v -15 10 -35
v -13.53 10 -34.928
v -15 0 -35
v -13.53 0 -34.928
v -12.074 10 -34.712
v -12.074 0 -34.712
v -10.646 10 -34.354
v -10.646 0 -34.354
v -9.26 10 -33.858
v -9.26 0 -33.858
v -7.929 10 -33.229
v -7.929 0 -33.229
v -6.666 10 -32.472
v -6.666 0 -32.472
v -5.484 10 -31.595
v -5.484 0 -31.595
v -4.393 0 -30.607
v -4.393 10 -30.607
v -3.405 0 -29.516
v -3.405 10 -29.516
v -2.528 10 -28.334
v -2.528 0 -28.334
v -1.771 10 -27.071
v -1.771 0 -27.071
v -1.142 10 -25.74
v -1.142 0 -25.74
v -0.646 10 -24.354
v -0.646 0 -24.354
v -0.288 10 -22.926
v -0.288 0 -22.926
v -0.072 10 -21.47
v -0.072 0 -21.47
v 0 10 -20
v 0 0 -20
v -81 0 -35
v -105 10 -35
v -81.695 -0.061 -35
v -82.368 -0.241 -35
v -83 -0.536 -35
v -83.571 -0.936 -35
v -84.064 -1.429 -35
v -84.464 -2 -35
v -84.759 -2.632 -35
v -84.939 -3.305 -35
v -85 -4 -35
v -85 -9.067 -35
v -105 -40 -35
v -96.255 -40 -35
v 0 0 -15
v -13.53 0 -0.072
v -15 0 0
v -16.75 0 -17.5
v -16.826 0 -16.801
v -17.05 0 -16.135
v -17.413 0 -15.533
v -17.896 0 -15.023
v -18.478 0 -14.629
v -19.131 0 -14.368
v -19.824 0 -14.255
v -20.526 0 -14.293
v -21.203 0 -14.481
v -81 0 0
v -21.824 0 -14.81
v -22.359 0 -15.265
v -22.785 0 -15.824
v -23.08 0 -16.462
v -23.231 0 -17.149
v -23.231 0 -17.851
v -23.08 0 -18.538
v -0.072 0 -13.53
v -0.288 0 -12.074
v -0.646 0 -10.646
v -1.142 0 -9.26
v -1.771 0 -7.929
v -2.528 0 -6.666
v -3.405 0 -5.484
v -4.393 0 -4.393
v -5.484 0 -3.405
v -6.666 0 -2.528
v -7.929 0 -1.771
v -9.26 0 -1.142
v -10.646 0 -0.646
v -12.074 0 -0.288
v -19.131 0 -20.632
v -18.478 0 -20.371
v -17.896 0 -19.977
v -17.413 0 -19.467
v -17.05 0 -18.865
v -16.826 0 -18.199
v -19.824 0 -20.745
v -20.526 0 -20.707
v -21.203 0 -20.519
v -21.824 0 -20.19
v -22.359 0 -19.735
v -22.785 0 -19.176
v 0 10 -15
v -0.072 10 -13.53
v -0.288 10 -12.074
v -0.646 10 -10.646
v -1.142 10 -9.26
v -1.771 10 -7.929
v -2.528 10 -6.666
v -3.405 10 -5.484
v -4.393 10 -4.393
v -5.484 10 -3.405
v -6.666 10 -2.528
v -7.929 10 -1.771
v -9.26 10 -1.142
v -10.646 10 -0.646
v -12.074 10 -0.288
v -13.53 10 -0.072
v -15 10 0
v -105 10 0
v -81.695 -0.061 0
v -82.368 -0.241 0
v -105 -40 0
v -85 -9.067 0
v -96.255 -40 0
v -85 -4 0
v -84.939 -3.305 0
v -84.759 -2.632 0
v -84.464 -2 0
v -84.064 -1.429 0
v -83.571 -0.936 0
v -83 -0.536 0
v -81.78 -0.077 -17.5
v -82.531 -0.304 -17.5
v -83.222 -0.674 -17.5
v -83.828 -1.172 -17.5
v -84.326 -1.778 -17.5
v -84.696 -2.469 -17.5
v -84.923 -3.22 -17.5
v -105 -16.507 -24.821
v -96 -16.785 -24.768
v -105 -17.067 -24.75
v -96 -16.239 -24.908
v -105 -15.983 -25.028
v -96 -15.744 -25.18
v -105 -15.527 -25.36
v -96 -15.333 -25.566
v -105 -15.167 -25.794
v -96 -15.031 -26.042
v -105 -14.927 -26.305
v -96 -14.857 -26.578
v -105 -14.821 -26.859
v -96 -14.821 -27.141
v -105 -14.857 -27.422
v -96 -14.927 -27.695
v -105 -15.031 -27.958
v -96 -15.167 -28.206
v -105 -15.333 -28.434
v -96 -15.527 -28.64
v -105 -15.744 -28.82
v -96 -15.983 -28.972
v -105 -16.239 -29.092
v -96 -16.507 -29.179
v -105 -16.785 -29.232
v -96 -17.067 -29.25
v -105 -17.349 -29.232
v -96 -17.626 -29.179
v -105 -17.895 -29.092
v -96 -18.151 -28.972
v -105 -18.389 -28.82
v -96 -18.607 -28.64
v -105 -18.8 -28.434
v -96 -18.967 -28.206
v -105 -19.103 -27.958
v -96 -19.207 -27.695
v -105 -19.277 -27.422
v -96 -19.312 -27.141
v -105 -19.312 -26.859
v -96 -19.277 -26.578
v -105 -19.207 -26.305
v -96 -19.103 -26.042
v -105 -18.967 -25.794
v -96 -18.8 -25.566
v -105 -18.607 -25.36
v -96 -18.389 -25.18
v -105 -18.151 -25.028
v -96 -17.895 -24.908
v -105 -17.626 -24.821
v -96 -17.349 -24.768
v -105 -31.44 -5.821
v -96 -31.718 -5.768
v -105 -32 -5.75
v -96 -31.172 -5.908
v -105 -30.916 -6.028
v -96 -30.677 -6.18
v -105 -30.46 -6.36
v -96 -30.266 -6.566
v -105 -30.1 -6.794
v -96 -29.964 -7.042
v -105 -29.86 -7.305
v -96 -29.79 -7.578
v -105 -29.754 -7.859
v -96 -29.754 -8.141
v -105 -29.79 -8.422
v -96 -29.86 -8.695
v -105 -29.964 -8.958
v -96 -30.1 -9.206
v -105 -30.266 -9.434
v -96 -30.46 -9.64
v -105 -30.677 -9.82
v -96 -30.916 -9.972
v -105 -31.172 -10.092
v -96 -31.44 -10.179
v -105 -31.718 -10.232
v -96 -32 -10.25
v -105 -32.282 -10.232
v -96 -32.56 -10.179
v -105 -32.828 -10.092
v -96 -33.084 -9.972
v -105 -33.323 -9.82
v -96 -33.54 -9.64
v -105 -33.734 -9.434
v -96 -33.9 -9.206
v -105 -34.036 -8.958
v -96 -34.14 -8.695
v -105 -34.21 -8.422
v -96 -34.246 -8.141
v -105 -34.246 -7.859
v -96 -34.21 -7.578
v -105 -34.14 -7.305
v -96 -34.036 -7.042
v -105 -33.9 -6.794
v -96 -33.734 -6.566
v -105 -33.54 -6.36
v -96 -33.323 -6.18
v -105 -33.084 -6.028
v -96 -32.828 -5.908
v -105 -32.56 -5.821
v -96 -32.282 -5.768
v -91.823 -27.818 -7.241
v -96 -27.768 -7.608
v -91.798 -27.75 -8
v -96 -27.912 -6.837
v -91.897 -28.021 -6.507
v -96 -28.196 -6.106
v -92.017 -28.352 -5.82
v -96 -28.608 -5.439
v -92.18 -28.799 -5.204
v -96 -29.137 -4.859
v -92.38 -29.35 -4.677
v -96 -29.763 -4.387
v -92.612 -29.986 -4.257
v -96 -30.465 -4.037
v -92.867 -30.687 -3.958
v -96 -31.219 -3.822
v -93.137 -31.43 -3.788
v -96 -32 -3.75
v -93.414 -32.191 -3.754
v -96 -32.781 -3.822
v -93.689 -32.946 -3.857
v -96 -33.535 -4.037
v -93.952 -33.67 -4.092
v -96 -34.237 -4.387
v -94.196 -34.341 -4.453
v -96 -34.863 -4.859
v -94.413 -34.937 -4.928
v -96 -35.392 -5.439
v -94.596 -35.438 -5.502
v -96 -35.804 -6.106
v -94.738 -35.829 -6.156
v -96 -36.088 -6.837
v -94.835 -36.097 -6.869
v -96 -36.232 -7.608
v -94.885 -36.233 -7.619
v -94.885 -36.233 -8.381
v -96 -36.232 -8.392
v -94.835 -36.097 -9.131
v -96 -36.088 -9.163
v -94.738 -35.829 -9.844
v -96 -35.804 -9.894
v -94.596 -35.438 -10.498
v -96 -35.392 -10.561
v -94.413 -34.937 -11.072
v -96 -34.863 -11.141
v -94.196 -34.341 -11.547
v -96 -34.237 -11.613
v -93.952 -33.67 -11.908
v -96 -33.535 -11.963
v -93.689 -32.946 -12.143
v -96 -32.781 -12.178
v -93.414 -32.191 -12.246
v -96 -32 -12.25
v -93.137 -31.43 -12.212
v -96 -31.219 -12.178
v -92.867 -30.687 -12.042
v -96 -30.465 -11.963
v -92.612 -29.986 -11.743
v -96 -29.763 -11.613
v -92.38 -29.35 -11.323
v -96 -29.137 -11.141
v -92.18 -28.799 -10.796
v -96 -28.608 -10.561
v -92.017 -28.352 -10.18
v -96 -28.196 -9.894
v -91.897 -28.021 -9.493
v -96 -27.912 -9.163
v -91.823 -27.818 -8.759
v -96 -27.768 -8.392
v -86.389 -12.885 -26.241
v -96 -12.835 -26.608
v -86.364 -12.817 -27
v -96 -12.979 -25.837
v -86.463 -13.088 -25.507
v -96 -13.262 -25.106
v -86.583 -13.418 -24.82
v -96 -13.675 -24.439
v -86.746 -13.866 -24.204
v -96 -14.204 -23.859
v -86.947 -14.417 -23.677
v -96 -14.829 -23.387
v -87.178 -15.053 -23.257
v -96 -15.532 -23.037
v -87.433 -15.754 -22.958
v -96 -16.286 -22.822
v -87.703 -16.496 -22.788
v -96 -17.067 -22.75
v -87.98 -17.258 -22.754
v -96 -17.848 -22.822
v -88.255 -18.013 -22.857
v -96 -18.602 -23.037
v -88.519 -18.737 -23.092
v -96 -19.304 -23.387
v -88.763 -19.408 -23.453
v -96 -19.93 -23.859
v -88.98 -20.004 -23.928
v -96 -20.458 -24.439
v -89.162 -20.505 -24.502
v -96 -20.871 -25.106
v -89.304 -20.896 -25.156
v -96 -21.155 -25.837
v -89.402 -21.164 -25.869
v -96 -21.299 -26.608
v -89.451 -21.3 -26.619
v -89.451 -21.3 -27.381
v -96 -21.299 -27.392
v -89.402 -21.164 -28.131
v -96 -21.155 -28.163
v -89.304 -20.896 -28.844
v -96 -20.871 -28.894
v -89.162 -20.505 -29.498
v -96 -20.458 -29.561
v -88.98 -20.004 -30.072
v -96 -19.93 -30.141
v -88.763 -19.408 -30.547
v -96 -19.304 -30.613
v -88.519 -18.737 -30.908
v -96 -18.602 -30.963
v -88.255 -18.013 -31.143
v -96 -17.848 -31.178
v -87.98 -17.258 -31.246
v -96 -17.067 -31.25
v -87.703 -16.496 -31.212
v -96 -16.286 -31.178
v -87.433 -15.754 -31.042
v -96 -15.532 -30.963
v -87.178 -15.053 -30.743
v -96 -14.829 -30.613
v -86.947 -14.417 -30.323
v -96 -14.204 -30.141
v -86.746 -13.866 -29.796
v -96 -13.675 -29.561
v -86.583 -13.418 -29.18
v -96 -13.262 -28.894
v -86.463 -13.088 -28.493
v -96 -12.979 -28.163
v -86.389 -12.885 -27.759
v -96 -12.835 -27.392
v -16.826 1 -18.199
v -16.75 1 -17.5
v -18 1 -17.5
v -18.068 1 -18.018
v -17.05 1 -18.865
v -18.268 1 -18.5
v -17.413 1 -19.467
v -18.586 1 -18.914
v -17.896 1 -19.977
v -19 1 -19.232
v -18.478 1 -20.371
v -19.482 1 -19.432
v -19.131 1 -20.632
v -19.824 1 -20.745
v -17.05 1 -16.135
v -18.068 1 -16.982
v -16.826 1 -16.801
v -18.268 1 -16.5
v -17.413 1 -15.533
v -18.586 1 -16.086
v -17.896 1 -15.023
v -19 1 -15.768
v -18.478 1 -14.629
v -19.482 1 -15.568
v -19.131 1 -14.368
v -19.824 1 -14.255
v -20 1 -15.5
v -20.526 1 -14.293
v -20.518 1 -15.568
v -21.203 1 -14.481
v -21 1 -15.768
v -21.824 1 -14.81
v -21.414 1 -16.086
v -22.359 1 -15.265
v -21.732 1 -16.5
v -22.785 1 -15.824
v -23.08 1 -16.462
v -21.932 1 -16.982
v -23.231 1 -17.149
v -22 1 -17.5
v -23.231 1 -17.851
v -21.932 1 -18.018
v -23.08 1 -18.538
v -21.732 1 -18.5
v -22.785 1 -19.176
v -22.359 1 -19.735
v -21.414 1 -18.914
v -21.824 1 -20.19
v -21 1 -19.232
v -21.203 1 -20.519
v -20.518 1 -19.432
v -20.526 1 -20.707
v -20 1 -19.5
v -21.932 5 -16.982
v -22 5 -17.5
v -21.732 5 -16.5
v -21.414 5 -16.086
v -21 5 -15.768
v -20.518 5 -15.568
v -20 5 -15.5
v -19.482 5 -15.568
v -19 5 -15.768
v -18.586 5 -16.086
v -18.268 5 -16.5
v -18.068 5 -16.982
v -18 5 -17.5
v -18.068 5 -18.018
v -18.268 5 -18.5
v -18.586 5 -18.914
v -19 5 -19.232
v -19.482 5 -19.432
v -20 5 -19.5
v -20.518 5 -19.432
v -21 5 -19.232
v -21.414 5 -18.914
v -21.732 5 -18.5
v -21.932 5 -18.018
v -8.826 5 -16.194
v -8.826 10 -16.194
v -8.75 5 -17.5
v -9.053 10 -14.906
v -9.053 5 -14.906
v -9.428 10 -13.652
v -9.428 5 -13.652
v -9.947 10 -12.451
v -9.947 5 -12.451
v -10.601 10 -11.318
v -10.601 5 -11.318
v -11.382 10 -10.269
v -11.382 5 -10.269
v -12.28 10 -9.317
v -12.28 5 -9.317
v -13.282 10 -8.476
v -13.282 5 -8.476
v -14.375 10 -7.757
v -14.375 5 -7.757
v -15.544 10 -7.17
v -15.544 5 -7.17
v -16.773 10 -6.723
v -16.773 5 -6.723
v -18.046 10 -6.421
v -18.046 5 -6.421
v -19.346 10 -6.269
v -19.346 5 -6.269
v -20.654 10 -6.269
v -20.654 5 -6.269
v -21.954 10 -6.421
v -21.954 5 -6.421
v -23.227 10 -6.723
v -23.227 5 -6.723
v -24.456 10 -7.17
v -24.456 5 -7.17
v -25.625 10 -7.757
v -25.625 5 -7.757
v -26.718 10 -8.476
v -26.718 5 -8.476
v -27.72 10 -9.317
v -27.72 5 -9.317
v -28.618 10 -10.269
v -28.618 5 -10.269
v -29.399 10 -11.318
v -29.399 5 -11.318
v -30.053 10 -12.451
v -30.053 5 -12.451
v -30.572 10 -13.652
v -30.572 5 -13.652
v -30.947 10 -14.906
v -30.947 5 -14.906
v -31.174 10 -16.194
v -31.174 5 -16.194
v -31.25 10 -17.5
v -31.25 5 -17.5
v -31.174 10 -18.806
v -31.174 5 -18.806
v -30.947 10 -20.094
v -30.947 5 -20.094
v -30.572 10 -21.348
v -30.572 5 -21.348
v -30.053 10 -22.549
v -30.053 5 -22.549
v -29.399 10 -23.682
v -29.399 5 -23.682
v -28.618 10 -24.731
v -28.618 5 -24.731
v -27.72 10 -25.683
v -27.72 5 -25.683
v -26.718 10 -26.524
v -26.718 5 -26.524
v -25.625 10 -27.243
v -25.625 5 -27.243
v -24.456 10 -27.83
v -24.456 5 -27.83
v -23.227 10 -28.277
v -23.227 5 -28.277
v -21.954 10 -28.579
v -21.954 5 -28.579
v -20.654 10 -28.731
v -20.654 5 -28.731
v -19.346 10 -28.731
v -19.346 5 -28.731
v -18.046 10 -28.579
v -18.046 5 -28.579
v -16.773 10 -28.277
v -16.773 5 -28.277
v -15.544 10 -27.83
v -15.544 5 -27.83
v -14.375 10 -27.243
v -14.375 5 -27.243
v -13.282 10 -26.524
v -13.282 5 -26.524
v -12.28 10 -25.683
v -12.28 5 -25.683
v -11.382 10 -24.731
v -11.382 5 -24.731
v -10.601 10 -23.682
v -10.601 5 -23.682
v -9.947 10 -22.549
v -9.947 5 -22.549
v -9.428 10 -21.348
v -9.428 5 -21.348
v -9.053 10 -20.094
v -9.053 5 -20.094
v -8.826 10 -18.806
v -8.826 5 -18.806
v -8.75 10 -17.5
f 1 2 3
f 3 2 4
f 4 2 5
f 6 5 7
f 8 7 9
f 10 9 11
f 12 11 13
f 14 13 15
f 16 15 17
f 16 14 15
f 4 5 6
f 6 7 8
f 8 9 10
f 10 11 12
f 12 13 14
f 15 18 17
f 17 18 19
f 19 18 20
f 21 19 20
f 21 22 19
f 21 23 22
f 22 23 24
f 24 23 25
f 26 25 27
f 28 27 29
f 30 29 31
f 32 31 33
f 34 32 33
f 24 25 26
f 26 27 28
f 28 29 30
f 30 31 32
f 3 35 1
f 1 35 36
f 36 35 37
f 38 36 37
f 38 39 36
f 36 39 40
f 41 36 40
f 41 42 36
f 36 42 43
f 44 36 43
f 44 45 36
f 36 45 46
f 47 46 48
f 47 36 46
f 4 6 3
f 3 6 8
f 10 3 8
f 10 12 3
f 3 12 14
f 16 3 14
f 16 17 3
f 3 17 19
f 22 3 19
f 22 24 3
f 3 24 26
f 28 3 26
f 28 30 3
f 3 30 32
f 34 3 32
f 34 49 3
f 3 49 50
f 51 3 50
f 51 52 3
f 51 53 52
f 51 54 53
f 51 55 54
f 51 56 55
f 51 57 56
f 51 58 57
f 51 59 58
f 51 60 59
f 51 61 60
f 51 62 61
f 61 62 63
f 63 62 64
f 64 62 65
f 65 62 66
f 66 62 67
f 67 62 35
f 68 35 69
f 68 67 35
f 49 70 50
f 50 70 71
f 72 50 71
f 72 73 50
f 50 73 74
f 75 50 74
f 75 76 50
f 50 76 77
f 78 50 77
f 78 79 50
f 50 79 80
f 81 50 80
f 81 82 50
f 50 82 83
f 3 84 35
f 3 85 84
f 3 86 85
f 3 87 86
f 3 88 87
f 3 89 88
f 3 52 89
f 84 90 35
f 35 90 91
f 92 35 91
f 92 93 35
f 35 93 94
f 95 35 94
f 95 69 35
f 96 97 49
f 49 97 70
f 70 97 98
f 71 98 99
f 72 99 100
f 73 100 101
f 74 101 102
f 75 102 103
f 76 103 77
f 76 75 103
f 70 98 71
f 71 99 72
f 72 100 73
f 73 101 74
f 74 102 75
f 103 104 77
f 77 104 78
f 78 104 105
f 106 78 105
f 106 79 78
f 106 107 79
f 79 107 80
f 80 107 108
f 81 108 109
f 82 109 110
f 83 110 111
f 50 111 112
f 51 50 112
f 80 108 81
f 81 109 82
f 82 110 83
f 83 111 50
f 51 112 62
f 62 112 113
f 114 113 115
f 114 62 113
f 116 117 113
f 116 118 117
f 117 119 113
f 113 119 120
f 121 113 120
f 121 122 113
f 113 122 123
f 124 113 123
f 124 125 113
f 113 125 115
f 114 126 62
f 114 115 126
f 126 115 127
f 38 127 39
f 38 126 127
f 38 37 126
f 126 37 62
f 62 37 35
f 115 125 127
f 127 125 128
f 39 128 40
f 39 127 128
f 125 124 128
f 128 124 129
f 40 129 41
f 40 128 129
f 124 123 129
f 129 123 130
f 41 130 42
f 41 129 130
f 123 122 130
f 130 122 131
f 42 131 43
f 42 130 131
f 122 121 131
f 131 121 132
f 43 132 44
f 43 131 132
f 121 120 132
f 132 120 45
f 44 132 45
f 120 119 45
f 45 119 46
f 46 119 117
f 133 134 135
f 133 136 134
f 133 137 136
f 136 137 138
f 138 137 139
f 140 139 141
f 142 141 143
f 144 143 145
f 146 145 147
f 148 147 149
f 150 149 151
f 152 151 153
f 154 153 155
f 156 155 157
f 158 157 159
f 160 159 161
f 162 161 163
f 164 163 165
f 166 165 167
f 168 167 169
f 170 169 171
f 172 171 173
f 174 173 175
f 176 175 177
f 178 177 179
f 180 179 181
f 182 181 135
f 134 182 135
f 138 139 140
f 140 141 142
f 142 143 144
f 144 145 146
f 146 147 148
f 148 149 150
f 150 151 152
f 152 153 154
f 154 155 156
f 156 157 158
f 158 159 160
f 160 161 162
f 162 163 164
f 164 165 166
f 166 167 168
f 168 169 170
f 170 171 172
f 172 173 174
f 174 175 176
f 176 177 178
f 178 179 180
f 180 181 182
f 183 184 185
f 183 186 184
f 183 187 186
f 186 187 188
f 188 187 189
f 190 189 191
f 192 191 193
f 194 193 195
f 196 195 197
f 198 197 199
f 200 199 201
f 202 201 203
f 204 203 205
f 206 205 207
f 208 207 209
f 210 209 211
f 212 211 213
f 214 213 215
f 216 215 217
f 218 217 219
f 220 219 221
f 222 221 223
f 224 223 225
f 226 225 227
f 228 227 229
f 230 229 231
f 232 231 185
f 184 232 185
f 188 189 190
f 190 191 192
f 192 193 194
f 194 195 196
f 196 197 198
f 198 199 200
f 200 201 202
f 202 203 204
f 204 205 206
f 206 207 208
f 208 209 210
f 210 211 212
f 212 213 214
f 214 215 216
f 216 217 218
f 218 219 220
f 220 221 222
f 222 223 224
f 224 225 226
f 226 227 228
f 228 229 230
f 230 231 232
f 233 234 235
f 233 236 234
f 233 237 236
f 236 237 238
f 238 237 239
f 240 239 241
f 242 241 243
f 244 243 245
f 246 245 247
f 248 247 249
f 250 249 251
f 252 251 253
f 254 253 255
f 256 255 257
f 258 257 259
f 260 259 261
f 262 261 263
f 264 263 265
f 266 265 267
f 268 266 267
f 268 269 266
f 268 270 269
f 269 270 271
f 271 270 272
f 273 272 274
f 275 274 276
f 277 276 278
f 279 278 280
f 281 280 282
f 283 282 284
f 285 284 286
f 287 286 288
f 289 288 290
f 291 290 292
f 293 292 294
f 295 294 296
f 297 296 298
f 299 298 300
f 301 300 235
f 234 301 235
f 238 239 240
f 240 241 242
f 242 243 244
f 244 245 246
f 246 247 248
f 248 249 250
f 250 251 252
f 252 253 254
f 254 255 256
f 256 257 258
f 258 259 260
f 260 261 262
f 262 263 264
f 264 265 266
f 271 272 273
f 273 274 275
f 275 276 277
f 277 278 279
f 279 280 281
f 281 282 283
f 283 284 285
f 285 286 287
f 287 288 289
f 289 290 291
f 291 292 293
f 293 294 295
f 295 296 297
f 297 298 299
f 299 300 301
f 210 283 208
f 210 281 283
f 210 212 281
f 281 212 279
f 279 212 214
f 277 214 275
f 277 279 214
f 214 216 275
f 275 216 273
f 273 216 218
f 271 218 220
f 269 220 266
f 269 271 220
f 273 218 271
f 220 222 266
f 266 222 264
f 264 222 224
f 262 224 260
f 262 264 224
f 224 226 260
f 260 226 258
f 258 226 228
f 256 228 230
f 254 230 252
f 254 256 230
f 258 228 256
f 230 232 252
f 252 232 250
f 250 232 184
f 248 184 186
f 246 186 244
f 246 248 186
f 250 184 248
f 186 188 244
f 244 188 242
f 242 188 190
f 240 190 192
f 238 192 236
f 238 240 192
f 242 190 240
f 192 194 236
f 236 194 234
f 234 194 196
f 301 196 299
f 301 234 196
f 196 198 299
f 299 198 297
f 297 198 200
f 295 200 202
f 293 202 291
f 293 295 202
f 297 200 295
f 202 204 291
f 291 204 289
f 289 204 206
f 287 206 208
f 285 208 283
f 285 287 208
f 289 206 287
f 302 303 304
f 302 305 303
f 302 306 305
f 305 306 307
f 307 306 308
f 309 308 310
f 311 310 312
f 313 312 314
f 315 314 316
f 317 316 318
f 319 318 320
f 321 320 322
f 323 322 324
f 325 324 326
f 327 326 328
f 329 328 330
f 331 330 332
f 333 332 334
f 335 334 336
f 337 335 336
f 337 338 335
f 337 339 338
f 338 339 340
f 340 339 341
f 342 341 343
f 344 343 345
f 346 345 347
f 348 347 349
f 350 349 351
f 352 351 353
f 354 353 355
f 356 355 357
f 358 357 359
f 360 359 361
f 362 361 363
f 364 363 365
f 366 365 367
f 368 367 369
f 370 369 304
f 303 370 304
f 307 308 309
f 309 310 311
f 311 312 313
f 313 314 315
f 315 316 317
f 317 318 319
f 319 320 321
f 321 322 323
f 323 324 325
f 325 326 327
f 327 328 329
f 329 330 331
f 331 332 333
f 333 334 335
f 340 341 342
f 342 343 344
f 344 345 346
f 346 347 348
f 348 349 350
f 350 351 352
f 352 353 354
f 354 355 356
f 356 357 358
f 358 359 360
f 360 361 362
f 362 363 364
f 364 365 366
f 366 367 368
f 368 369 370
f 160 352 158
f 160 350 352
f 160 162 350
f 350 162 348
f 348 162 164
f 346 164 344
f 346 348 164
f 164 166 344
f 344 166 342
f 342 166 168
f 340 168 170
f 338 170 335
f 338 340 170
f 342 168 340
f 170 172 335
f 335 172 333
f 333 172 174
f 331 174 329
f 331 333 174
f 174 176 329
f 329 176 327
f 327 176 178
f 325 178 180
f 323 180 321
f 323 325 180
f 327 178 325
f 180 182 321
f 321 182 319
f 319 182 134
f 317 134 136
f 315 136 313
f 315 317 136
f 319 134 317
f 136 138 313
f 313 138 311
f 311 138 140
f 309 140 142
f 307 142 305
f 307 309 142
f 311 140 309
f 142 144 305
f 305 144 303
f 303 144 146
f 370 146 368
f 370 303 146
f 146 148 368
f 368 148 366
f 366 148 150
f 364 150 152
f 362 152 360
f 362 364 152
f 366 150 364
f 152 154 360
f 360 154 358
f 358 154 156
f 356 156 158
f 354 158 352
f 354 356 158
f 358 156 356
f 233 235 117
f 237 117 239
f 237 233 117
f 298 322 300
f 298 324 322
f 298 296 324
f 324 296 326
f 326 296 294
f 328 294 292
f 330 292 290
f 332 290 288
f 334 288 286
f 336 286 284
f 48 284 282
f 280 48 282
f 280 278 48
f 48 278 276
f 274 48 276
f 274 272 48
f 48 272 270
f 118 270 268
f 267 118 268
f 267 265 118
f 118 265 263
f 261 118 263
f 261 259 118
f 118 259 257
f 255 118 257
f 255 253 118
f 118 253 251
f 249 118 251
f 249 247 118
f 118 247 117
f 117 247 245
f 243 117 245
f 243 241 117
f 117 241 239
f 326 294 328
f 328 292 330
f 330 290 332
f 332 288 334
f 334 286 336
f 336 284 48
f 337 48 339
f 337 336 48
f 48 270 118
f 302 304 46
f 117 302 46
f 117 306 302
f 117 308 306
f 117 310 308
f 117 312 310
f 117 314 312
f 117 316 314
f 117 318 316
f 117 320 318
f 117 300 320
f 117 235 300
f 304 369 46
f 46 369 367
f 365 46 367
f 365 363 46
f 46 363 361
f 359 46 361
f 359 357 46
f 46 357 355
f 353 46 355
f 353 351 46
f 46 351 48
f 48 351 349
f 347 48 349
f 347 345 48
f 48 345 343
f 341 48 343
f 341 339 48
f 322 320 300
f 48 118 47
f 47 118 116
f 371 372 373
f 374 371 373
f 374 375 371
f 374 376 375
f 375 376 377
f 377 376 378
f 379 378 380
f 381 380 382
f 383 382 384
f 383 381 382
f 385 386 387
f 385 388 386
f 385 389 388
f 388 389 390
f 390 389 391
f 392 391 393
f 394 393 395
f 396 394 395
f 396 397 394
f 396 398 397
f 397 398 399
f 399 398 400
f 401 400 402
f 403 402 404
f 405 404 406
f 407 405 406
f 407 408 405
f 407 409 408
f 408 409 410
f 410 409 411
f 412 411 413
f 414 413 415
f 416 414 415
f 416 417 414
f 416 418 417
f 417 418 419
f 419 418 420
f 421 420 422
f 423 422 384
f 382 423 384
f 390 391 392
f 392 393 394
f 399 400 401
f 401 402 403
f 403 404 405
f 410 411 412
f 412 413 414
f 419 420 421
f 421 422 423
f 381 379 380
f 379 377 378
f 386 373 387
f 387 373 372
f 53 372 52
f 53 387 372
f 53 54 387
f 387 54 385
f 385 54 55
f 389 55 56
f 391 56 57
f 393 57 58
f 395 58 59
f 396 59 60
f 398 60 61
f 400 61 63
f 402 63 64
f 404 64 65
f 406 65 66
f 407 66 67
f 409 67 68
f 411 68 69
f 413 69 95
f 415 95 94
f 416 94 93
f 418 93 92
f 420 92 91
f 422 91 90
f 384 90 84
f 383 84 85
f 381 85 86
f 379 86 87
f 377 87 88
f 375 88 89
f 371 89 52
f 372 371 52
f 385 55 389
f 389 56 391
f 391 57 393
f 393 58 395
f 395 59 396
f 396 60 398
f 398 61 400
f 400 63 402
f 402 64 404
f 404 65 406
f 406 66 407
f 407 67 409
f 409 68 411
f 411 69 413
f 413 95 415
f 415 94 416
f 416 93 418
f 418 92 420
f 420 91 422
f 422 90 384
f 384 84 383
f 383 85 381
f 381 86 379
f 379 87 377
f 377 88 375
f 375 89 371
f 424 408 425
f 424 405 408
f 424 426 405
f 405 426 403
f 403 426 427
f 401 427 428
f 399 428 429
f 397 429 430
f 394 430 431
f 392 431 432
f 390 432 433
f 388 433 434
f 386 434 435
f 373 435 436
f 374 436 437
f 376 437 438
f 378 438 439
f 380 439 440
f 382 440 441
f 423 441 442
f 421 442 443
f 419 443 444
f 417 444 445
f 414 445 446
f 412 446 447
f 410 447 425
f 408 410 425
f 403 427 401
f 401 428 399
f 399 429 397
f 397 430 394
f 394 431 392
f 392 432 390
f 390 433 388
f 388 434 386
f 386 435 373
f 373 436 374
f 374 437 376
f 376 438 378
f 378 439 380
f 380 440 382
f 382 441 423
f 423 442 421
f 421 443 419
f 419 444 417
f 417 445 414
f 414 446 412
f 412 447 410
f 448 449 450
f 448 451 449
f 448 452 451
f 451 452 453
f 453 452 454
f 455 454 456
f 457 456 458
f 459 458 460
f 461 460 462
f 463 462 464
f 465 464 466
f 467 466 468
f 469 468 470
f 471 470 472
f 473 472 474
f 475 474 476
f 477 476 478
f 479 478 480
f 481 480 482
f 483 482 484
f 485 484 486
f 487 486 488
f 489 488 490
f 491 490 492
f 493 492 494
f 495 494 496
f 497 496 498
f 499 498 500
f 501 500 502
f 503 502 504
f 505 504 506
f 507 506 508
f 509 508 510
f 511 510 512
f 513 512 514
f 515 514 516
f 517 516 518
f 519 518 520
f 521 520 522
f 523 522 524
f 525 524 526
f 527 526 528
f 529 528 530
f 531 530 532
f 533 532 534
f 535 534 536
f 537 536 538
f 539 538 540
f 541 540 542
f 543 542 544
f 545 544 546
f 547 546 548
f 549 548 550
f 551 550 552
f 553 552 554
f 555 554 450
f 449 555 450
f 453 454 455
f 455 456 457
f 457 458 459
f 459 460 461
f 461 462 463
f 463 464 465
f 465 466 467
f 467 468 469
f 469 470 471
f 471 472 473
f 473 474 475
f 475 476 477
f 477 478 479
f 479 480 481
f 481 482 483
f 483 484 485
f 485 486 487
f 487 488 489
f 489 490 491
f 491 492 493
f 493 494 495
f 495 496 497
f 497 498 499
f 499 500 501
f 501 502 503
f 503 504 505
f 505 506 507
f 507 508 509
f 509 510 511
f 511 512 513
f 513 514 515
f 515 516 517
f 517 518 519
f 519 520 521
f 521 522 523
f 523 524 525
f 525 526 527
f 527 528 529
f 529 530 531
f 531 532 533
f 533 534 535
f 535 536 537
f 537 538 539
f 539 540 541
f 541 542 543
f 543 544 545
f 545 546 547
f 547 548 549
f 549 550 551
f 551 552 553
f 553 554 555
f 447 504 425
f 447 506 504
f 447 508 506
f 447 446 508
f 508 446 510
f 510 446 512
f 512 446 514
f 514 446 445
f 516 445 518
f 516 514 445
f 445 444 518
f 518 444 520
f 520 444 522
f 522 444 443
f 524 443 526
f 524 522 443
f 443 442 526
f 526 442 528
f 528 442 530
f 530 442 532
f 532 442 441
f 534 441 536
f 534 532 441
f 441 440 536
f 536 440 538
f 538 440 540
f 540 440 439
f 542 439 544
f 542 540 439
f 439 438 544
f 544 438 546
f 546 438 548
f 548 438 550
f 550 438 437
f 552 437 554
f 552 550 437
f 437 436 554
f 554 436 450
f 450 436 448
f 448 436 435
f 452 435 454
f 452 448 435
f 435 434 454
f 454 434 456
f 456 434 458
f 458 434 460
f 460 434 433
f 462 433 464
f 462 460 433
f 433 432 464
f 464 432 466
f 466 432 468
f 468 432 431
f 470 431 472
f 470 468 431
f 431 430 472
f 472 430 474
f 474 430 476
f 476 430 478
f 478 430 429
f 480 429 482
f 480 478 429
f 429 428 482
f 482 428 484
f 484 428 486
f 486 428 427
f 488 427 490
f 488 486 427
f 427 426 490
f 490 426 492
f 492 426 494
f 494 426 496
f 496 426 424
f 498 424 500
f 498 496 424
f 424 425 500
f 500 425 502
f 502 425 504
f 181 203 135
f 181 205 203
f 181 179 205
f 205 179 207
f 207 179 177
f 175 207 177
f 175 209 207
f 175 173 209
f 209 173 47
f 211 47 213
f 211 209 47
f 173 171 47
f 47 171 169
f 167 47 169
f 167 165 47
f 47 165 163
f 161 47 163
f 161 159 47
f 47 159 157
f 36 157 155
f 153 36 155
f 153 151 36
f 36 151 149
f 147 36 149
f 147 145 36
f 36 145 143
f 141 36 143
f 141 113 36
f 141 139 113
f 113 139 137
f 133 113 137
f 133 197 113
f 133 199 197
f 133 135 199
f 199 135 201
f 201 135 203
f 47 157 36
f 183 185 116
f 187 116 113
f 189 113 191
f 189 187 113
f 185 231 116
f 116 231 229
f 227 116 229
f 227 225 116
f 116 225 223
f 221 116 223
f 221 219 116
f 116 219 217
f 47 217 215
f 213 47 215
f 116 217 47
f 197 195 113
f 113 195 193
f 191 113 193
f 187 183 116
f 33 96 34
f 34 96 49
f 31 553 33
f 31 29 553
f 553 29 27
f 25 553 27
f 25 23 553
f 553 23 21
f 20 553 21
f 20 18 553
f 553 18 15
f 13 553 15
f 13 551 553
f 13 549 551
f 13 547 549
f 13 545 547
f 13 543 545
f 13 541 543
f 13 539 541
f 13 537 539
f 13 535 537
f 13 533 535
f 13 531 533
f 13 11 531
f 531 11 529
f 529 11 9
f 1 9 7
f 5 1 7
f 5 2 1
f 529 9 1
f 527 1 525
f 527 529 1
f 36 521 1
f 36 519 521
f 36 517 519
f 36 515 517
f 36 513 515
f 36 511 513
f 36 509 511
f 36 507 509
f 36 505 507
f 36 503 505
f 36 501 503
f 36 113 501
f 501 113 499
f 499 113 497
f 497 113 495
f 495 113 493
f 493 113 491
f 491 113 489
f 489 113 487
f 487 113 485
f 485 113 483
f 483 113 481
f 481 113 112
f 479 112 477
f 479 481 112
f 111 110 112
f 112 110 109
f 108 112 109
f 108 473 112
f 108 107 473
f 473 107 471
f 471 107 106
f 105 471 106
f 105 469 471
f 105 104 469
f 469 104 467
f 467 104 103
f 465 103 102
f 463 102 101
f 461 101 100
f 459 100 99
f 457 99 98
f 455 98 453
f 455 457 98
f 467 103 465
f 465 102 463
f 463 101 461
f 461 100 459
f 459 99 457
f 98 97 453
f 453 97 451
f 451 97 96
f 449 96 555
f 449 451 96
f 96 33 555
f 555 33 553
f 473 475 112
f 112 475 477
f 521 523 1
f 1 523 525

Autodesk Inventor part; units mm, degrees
ref_plane "YZ Plane" through (0, 0, 0) normal (1, 0, 0) x (0, 1, 0)
ref_plane "XZ Plane" through (0, 0, 0) normal (0, 1, 0) x (-1, 0, 0)
sketch "Sketch1" plane through (0, 0, 0) normal (0, 1, 0) x (-1, 0, 0)
  line L0 (0, 0) -> (105, 0)
  line L1 (105, 0) -> (105, -35)
  line L2 (105, -35) -> (0, -35)
  line L3 (0, -35) -> (0, 0)
  dimension "d0" = 35
  dimension "d1" = 105
extrude "Extrusion1" add sketch "Sketch1" along normal blind 10
sketch "Sketch2" plane through (0, 10, 0) normal (0, 1, 0) x (1, 0, 0)
  circle A0 centre (-20, 17.5) radius 11.25
  line L0 (0, 35) -> (-105, 35) projected
  line L1 (-105, 35) -> (-105, 0) projected
  point P0 (0, 0)
  dimension "d4" = 22.5
  dimension "d5" = 17.5
  dimension "d6" = 85
extrude "Extrusion2" cut sketch "Sketch2" against normal blind 5
sketch "Sketch3" plane through (0, 0, 0) normal (0, -1, 0) x (1, 0, 0)
  circle A0 centre (-20, -17.5) radius 11.25 construction
  point P0 (0, 0)
hole "Hole1" at (-20, 0, -17.5) direction (0, 1, 0) diameter 4 depth 8 tip angle 118 counterbore diameter 6.5 counterbore depth 1
sketch "Sketch4" plane through (0, 0, 0) normal (0, -1, 0) x (1, 0, 0)
  line L0 (-105, -35) -> (0, -35) projected
  line L1 (-105, -35) -> (-85, -35)
  line L2 (-85, -35) -> (-85, 0)
  line L3 (-85, 0) -> (-105, 0)
  line L4 (-105, 0) -> (-105, -35)
  point P0 (0, 0)
  dimension "d16" = 20
extrude "Extrusion3" add sketch "Sketch4" along normal blind 40
sketch "Sketch5" plane through (-105, 10, 0) normal (0, 0, 1) x (1, 0, 0)
  line L0 (20, -50) -> (0, -50) projected
  line L1 (8.7445, -50) -> (20, -19.0668)
  line L2 (20, -10) -> (20, -50) projected
  line L3 (20, -50) -> (8.7445, -50)
  line L4 (20, -50) -> (20, -19.0668)
  point P0 (105, -10)
extrude "Extrusion4" cut sketch "Sketch5" against normal blind 42
ref_plane "Work Plane1" through (-85, 10, -35) normal (-1, 0, 0) x (0, 0, 1)
sketch "Sketch6" plane through (-85, 10, -35) normal (-1, 0, 0) x (0, 0, 1)
  circle A0 centre (27, -42) radius 4.25
  line L0 (35, -50) -> (35, -19.0668) projected
  line L1 (0, -50) -> (35, -50) projected
  circle A1 centre (8, -27.0668) radius 4.25
  line L2 (35, -19.0668) -> (0, -19.0668) projected
  line L3 (0, -19.0668) -> (0, -50) projected
  point P0 (35, -10)
  dimension "d22" = 8.5
  dimension "d23" = 8
  dimension "d24" = 8
  dimension "d25" = 8.5
  dimension "d26" = 8
  dimension "d27" = 8
extrude "Extrusion5" cut sketch "Sketch6" along normal blind 11 contours A0 | A1
sketch "Sketch7" plane through (-96, -32, -8) normal (1, 0, 0) x (0, 0, -1)
  point P0 (-8, 32)
  point P1 (0, 0)
hole "Hole2" at (-96, -32, -8) direction (-1, 0, 0) diameter 4.5 depth 10 tip angle 118
sketch "Sketch8" plane through (-96, -17.0668, -27) normal (1, 0, 0) x (0, 0, -1)
  point P0 (-27, 17.0668)
  point P1 (0, 0)
hole "Hole3" at (-96, -17.0668, -27) direction (-1, 0, 0) diameter 4.5 depth 10 tip angle 118
fillet "Fillet1" radius 4 1 edges at (-85, 0, -17.5)
fillet "Fillet2" radius 15 1 edges at (0, 5, 0)
fillet "Fillet3" radius 15 1 edges at (0, 5, -35)
properties part number "Large Bracket (RHS)"
